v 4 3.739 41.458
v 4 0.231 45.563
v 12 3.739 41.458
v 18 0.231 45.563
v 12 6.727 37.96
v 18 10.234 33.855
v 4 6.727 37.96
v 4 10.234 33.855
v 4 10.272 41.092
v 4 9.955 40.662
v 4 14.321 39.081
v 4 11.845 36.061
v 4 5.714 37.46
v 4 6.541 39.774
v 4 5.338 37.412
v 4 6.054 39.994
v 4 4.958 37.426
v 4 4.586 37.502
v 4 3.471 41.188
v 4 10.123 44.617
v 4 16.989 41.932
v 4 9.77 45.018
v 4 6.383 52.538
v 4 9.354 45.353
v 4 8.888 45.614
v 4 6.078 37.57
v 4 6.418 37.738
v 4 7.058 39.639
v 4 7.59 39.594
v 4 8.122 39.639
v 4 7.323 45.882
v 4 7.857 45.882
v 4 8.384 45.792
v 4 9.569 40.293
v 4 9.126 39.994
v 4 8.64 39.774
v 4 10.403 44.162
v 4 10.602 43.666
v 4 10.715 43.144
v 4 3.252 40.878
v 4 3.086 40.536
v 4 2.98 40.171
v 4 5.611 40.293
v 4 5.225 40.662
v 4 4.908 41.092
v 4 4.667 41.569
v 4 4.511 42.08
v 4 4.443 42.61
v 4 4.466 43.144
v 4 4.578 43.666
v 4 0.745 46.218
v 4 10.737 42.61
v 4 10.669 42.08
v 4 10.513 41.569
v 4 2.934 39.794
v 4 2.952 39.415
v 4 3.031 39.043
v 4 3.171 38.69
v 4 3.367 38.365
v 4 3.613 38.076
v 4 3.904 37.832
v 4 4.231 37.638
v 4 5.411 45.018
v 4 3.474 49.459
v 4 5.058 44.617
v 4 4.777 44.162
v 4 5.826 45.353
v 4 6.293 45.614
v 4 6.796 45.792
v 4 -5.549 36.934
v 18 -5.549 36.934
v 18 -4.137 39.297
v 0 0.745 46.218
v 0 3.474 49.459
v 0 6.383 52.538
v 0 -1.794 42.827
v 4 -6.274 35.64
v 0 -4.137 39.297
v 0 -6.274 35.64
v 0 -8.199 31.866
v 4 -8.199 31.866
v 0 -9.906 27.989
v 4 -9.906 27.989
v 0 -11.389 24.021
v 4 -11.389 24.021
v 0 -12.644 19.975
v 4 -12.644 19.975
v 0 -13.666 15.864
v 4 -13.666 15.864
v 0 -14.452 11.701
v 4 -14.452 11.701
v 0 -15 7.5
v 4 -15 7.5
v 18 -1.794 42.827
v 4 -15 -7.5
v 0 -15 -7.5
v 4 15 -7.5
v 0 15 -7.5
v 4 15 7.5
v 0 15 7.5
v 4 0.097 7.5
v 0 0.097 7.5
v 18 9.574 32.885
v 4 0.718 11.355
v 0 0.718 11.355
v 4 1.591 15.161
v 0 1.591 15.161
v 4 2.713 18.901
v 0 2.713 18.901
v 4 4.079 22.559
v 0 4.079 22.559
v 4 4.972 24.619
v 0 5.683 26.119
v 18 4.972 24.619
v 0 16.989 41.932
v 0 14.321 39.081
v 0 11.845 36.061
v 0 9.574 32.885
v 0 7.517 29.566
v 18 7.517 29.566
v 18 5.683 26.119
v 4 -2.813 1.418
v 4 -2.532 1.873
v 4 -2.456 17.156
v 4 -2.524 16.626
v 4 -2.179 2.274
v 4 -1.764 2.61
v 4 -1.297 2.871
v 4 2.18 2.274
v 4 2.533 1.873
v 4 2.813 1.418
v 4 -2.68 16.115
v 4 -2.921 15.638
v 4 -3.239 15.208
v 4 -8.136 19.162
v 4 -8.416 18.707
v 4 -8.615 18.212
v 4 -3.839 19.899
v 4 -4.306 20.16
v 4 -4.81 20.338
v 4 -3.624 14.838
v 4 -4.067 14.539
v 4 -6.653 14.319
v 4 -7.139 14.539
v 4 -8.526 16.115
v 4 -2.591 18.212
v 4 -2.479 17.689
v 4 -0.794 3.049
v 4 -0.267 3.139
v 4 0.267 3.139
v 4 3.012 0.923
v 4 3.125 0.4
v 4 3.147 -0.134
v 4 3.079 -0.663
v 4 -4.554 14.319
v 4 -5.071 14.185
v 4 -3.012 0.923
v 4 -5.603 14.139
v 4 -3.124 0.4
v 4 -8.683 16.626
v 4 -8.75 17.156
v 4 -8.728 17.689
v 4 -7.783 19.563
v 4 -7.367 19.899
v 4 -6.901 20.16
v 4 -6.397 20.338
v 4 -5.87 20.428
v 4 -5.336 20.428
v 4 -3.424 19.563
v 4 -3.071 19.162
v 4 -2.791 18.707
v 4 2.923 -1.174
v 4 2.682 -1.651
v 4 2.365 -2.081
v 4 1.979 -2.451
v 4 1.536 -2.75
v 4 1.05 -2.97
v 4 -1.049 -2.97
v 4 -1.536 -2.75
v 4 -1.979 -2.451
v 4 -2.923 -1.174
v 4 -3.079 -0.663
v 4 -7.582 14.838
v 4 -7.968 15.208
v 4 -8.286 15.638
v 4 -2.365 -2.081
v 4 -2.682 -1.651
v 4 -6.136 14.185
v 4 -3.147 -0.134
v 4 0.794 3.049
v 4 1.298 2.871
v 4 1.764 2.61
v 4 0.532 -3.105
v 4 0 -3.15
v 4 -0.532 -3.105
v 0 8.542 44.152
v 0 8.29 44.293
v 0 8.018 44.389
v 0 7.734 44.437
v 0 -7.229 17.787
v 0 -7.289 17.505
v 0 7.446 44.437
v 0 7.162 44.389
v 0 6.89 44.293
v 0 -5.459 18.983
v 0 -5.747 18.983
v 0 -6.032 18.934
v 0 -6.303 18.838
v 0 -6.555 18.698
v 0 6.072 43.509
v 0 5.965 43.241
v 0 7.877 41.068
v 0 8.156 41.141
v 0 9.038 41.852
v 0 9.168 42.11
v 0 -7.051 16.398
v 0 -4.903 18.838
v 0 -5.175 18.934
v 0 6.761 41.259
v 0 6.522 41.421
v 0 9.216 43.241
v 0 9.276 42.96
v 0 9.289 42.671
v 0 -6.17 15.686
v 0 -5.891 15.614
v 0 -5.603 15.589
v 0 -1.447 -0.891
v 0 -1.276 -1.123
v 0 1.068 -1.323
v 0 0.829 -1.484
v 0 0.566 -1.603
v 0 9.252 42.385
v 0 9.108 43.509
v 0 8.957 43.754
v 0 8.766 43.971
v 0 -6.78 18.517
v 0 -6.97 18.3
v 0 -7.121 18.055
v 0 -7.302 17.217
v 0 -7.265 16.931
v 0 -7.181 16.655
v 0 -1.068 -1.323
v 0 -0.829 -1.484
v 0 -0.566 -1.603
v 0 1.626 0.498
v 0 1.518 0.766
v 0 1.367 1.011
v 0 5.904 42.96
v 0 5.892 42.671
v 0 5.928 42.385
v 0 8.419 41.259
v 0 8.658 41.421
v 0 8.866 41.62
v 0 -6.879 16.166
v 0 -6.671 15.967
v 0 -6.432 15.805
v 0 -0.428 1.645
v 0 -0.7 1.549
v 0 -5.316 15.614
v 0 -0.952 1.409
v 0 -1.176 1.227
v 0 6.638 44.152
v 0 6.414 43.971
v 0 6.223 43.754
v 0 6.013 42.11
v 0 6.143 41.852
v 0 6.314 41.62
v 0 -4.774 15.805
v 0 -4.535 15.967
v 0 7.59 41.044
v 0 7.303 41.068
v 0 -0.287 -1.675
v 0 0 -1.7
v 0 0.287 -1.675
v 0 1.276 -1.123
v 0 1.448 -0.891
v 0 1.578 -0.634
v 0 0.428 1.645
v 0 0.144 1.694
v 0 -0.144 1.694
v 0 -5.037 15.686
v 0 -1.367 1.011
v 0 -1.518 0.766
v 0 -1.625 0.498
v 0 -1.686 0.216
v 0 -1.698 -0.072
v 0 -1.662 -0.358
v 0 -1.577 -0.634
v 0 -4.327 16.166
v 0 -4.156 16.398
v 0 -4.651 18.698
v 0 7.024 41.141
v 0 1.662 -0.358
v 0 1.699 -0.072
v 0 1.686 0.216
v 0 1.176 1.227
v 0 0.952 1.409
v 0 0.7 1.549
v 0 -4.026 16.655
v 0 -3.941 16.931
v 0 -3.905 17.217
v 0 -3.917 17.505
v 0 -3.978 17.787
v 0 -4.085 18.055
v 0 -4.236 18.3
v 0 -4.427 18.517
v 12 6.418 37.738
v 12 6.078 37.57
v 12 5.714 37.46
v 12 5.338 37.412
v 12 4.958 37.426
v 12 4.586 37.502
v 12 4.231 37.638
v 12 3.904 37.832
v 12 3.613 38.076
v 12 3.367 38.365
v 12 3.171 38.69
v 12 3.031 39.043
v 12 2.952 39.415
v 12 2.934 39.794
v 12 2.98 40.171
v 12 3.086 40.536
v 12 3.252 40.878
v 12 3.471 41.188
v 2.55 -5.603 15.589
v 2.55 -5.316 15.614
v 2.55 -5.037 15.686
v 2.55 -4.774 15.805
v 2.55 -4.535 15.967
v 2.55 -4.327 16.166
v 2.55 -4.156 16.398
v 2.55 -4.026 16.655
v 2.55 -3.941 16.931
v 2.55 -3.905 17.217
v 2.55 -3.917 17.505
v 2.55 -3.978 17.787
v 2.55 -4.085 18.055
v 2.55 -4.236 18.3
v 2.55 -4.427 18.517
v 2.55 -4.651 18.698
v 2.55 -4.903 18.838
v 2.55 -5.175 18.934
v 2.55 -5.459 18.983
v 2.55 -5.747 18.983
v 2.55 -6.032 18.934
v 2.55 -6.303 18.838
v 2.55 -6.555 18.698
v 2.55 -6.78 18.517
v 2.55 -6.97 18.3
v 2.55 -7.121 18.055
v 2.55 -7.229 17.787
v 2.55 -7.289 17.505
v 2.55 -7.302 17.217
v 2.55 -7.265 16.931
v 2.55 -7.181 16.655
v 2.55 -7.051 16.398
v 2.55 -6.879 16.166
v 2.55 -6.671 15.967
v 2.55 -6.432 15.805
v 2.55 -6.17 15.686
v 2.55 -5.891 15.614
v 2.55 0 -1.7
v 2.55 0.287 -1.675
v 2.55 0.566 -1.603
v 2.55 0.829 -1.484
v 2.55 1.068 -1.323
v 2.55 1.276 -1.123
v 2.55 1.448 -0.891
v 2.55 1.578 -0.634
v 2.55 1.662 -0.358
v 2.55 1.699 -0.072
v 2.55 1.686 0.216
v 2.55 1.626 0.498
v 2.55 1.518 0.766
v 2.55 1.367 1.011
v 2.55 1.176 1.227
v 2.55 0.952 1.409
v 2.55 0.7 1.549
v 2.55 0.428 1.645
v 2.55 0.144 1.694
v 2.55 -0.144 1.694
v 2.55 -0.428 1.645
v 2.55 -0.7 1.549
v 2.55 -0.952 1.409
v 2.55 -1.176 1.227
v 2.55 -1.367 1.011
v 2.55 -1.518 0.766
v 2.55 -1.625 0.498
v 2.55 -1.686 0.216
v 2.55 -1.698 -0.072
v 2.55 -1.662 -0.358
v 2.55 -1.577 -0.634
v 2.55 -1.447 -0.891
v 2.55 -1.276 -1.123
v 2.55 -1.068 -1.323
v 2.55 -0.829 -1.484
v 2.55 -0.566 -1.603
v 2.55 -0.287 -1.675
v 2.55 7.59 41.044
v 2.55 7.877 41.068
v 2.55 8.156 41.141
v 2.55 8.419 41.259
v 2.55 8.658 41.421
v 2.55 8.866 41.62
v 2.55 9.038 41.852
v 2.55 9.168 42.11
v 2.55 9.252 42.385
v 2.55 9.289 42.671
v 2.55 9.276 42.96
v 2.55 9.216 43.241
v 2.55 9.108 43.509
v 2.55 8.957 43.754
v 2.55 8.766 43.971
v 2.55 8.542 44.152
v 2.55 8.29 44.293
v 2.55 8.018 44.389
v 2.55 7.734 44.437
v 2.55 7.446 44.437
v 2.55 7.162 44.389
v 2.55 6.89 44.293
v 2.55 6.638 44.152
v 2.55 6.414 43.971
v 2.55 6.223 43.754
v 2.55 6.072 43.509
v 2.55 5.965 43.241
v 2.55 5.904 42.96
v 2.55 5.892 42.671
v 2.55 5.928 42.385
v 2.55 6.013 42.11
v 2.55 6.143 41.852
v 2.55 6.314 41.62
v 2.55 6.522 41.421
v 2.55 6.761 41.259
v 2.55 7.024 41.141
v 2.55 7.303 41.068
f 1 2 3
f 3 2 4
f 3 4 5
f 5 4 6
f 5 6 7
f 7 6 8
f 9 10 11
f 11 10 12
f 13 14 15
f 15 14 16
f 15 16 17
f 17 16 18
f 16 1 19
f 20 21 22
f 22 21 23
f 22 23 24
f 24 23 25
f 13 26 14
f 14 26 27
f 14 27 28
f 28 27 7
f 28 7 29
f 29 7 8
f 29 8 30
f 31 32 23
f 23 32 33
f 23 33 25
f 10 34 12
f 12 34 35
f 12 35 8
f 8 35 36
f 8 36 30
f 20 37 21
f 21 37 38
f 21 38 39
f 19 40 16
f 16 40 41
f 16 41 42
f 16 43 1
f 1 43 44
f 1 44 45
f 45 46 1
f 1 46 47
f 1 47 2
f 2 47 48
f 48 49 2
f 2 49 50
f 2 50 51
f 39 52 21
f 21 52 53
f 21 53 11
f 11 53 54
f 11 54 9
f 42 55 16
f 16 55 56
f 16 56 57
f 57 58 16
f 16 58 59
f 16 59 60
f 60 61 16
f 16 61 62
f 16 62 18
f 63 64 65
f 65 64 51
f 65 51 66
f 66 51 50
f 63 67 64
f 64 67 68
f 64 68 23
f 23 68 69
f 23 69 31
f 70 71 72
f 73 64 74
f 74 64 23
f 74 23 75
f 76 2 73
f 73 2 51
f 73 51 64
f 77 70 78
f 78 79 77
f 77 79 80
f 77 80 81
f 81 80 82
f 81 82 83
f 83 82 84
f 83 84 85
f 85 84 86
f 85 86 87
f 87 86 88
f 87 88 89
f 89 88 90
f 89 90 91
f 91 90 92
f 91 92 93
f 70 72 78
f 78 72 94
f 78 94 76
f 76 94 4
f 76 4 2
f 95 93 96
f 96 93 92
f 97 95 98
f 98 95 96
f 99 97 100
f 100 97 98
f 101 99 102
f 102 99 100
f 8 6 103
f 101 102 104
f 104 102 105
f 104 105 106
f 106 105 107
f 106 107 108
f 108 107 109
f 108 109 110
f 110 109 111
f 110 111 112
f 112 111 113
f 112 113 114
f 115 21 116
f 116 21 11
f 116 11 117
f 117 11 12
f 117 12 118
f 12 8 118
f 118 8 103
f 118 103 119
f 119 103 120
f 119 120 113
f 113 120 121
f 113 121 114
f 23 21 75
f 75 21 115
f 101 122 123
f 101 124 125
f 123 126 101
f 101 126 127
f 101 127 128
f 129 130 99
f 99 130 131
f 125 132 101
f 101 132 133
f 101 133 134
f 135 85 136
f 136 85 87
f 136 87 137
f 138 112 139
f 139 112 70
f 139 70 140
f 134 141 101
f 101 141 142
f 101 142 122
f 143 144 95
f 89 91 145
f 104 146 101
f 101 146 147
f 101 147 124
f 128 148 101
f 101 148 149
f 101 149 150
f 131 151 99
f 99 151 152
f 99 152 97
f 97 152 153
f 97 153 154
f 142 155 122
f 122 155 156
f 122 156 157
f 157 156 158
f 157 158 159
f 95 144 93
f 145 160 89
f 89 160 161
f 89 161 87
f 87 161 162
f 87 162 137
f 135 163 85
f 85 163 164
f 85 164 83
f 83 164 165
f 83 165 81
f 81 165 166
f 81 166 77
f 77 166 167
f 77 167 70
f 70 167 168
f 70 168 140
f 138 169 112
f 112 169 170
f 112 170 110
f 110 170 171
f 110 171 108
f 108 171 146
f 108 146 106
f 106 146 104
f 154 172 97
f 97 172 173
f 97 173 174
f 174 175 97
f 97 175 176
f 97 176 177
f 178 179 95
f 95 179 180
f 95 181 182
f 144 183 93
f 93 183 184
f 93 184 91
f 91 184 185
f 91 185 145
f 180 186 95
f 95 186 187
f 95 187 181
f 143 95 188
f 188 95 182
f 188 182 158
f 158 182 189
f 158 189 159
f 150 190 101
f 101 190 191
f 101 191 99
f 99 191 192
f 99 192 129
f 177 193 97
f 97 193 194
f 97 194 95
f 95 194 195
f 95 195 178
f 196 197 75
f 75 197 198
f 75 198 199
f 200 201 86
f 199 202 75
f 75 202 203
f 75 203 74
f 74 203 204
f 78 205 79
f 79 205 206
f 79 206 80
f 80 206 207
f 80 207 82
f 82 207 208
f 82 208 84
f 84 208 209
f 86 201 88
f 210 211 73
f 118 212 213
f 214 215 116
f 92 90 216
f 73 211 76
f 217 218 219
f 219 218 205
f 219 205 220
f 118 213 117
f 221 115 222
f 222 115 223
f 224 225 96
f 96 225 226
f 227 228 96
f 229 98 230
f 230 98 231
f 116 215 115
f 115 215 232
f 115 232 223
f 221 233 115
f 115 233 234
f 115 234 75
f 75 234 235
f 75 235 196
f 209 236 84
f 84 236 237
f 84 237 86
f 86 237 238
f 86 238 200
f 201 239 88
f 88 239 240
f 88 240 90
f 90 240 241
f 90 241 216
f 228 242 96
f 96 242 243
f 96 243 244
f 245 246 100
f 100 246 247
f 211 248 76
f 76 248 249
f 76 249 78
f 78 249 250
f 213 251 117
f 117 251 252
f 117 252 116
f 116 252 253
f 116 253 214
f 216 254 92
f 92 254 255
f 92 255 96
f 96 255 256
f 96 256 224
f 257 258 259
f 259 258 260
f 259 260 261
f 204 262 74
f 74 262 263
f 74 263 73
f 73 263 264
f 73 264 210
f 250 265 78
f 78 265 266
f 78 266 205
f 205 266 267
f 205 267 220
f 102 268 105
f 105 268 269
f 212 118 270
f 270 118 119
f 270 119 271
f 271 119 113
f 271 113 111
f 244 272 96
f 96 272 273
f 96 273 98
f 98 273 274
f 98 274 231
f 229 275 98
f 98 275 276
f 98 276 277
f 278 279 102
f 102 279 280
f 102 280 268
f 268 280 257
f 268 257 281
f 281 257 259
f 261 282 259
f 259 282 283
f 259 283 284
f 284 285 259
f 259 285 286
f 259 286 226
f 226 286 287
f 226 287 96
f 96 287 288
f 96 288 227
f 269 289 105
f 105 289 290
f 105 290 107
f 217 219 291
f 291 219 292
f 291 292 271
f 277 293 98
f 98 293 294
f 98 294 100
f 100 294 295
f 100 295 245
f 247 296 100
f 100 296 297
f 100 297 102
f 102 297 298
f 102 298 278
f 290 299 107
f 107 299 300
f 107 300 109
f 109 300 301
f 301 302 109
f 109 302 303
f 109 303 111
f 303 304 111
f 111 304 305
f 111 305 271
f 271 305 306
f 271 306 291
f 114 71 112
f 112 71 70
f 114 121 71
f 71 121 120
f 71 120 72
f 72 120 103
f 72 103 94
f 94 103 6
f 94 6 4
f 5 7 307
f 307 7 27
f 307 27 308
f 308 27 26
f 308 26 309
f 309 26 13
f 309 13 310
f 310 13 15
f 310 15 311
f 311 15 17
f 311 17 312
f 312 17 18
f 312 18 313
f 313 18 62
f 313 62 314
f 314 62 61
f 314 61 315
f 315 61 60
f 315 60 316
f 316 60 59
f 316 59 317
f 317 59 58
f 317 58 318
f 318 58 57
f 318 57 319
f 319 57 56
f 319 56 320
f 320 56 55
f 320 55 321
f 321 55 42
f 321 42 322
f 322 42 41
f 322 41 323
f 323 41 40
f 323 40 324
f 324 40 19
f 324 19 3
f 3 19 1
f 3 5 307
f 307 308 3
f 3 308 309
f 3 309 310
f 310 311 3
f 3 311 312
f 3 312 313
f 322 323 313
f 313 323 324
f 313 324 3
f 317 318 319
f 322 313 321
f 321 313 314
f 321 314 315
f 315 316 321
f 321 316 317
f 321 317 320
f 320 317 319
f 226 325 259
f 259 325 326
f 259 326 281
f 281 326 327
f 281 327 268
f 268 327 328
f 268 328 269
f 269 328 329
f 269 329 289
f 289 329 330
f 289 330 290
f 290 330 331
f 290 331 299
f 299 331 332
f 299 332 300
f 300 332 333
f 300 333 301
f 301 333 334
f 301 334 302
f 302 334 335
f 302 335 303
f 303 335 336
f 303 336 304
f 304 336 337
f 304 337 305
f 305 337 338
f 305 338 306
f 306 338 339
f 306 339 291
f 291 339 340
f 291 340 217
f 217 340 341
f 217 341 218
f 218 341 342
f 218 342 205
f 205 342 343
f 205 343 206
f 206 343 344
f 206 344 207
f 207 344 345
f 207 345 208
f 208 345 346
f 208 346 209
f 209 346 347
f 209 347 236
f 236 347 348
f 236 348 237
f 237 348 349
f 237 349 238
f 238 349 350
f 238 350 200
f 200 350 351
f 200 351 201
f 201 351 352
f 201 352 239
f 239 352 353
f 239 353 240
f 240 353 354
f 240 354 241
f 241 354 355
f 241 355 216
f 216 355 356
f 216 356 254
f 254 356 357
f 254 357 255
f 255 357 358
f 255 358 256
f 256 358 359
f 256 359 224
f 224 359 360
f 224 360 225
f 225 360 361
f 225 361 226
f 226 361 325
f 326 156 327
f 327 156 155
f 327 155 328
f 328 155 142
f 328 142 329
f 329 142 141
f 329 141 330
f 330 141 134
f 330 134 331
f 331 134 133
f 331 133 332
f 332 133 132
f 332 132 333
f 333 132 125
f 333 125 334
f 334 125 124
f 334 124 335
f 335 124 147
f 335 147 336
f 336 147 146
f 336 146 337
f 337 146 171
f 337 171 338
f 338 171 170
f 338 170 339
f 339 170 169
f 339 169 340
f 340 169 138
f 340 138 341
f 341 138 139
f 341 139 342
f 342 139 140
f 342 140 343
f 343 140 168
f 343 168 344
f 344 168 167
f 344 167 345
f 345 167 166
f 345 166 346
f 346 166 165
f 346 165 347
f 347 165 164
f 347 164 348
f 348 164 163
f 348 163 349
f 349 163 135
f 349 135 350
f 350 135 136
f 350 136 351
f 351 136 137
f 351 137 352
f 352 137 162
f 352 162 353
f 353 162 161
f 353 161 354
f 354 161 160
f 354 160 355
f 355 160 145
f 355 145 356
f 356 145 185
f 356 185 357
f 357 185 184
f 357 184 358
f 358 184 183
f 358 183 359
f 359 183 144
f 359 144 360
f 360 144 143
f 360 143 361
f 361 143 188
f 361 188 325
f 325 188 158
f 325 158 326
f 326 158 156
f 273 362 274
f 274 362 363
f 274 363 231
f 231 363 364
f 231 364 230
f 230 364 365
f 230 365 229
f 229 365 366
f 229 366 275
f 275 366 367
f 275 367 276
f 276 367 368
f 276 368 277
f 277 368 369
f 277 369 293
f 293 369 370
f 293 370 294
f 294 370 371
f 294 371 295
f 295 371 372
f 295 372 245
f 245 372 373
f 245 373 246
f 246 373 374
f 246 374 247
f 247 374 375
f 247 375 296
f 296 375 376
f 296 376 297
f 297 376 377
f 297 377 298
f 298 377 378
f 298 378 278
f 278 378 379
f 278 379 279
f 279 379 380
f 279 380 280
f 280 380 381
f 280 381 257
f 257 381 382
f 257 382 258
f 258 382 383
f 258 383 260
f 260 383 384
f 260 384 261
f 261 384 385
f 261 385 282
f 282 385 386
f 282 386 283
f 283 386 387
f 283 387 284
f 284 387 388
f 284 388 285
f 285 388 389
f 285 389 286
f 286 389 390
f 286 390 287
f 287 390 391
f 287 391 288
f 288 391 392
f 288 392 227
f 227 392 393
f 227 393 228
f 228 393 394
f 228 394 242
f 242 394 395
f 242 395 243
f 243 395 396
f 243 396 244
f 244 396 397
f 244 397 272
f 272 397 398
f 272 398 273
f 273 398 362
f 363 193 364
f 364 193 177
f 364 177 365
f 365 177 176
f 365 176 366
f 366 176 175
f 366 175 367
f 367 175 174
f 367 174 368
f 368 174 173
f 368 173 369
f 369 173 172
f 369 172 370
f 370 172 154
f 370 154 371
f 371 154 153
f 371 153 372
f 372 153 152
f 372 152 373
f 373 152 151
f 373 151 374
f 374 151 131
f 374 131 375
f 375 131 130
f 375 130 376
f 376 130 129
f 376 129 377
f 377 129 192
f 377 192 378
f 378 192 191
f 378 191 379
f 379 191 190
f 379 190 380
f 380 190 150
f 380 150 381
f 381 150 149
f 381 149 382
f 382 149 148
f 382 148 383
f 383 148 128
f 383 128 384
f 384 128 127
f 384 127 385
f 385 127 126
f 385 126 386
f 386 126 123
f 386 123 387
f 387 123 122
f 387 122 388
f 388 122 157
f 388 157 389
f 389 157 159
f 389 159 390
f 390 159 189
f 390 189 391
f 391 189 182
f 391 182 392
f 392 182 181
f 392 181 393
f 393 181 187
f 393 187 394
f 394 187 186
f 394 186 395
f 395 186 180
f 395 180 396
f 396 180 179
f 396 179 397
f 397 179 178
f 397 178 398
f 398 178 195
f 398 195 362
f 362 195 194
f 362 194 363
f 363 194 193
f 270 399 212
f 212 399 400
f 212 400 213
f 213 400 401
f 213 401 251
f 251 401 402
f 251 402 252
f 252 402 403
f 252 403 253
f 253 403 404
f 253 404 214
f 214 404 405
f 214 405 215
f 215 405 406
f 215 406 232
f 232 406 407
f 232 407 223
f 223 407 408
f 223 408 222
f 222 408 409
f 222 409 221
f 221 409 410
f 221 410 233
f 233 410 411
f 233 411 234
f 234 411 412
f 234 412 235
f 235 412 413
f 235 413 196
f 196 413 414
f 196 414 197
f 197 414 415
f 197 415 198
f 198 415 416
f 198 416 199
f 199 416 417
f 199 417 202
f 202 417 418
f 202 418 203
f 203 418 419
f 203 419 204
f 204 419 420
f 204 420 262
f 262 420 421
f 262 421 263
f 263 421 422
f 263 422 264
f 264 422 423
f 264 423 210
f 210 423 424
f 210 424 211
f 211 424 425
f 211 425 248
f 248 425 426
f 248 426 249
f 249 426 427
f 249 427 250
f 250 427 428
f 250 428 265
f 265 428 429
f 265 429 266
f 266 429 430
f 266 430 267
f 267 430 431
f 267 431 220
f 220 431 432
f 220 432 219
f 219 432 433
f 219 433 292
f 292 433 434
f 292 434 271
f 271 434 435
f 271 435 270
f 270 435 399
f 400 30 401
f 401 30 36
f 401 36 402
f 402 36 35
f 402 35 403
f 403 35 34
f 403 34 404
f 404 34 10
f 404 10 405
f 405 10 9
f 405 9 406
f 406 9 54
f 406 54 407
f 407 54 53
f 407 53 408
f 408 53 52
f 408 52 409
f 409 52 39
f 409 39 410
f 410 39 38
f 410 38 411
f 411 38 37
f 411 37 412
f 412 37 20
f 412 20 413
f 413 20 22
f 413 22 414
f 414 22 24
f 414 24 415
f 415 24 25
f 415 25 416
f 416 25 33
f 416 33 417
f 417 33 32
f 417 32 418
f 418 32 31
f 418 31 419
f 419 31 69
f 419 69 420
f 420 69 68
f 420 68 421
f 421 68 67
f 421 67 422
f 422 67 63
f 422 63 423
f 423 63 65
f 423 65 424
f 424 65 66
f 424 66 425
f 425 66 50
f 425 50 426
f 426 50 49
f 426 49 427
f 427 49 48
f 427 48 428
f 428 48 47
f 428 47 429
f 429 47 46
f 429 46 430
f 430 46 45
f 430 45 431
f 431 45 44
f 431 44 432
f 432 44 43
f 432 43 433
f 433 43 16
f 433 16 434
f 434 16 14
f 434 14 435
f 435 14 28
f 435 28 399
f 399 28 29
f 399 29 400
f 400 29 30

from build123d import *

# Parameters (mm, degrees)
SKETCH1_W                                       = 15
SKETCH1_H                                       = 30
BOSS_EXTRUDE1_DEPTH                             = 4
BOSS_EXTRUDE2_DEPTH                             = 14
SKETCH3_R                                       = 2.3
CUT_EXTRUDE1_DEPTH                              = 8
CSK_FOR_M3_FLAT_HEAD_MACHINE_SCREW1_D           = 3.4
CSK_FOR_M3_FLAT_HEAD_MACHINE_SCREW1_DEPTH       = 6.35
CSK_FOR_M3_FLAT_HEAD_MACHINE_SCREW1_CSINK_D     = 6.3
CSK_FOR_M3_FLAT_HEAD_MACHINE_SCREW1_CSINK_ANGLE = 90
CSK_FOR_M3_FLAT_HEAD_MACHINE_SCREW1_TIP         = 1.021463052


with BuildPart() as part:
    # Sketch1 → Boss-Extrude1 (new body)
    with BuildSketch(Plane(origin=(0, 0, 0), x_dir=(0, 0, -1), z_dir=(1, 0, 0))):
        with BuildLine():
            Line((-33.857008974, 10.235870452), (-45.565370995, 0.232449935))
            ThreePointArc((-45.565370995, 0.232449935), (-27.604171468, -10.061381798), (-7.5, -15))
            Line((-7.5, -15), (-7.5, 0.096693129))
            ThreePointArc((-7.5, 0.096693129), (-21.290873092, 3.574416464), (-33.857008974, 10.235870452))
        make_face()
        Rectangle(SKETCH1_W, SKETCH1_H)
        with BuildLine():
            Line((-41.931432124, 16.989065709), (-52.538033842, 6.382463992))
            ThreePointArc((-52.538033842, 6.382463992), (-49.147992618, 3.198286628), (-45.565370995, 0.232449935))
            Line((-45.565370995, 0.232449935), (-33.857008974, 10.235870452))
            ThreePointArc((-33.857008974, 10.235870452), (-38.044360457, 13.432954073), (-41.931432124, 16.989065709))
        make_face()
    extrude(amount=BOSS_EXTRUDE1_DEPTH)

    # Sketch2 → Boss-Extrude2 (add)
    with BuildSketch(Plane(origin=(4, 0, 0), x_dir=(0, 0, -1), z_dir=(1, 0, 0))):
        with BuildLine():
            Line((-33.854727787, 10.234284113), (-45.563203072, 0.230766826))
            ThreePointArc((-45.563203072, 0.230766826), (-41.349722145, -2.810292527), (-36.933994133, -5.549418231))
            Line((-36.933994133, -5.549418231), (-24.61890521, 4.97237918))
            ThreePointArc((-24.61890521, 4.97237918), (-29.354954434, 7.395973089), (-33.854727787, 10.234284113))
        make_face()
    extrude(amount=BOSS_EXTRUDE2_DEPTH)

    # Sketch3 → Cut-Extrude1 (cut)
    with BuildSketch(Plane(origin=(4, 0, 0), x_dir=(0, 0, -1), z_dir=(1, 0, 0))):
        with Locations((-39.70896543, 5.232525469)):
            Circle(SKETCH3_R)
    extrude(amount=CUT_EXTRUDE1_DEPTH, mode=Mode.SUBTRACT)

    # CSK for M3 Flat Head Machine Screw1
    with Locations(Plane(origin=(4, 0, 0), x_dir=(0, 0, -1), z_dir=(1, 0, 0))):
        with Locations((-42.74343682, 7.59), (-17.289112213, -5.603347362), (0, 0)):
            CounterSinkHole(CSK_FOR_M3_FLAT_HEAD_MACHINE_SCREW1_D / 2, CSK_FOR_M3_FLAT_HEAD_MACHINE_SCREW1_CSINK_D / 2, depth=CSK_FOR_M3_FLAT_HEAD_MACHINE_SCREW1_DEPTH, counter_sink_angle=CSK_FOR_M3_FLAT_HEAD_MACHINE_SCREW1_CSINK_ANGLE)
            with Locations((0, 0, -(CSK_FOR_M3_FLAT_HEAD_MACHINE_SCREW1_DEPTH + CSK_FOR_M3_FLAT_HEAD_MACHINE_SCREW1_TIP / 2))):  # 118° drill point
                Cone(0, CSK_FOR_M3_FLAT_HEAD_MACHINE_SCREW1_D / 2, CSK_FOR_M3_FLAT_HEAD_MACHINE_SCREW1_TIP, mode=Mode.SUBTRACT)


solid = part.part
